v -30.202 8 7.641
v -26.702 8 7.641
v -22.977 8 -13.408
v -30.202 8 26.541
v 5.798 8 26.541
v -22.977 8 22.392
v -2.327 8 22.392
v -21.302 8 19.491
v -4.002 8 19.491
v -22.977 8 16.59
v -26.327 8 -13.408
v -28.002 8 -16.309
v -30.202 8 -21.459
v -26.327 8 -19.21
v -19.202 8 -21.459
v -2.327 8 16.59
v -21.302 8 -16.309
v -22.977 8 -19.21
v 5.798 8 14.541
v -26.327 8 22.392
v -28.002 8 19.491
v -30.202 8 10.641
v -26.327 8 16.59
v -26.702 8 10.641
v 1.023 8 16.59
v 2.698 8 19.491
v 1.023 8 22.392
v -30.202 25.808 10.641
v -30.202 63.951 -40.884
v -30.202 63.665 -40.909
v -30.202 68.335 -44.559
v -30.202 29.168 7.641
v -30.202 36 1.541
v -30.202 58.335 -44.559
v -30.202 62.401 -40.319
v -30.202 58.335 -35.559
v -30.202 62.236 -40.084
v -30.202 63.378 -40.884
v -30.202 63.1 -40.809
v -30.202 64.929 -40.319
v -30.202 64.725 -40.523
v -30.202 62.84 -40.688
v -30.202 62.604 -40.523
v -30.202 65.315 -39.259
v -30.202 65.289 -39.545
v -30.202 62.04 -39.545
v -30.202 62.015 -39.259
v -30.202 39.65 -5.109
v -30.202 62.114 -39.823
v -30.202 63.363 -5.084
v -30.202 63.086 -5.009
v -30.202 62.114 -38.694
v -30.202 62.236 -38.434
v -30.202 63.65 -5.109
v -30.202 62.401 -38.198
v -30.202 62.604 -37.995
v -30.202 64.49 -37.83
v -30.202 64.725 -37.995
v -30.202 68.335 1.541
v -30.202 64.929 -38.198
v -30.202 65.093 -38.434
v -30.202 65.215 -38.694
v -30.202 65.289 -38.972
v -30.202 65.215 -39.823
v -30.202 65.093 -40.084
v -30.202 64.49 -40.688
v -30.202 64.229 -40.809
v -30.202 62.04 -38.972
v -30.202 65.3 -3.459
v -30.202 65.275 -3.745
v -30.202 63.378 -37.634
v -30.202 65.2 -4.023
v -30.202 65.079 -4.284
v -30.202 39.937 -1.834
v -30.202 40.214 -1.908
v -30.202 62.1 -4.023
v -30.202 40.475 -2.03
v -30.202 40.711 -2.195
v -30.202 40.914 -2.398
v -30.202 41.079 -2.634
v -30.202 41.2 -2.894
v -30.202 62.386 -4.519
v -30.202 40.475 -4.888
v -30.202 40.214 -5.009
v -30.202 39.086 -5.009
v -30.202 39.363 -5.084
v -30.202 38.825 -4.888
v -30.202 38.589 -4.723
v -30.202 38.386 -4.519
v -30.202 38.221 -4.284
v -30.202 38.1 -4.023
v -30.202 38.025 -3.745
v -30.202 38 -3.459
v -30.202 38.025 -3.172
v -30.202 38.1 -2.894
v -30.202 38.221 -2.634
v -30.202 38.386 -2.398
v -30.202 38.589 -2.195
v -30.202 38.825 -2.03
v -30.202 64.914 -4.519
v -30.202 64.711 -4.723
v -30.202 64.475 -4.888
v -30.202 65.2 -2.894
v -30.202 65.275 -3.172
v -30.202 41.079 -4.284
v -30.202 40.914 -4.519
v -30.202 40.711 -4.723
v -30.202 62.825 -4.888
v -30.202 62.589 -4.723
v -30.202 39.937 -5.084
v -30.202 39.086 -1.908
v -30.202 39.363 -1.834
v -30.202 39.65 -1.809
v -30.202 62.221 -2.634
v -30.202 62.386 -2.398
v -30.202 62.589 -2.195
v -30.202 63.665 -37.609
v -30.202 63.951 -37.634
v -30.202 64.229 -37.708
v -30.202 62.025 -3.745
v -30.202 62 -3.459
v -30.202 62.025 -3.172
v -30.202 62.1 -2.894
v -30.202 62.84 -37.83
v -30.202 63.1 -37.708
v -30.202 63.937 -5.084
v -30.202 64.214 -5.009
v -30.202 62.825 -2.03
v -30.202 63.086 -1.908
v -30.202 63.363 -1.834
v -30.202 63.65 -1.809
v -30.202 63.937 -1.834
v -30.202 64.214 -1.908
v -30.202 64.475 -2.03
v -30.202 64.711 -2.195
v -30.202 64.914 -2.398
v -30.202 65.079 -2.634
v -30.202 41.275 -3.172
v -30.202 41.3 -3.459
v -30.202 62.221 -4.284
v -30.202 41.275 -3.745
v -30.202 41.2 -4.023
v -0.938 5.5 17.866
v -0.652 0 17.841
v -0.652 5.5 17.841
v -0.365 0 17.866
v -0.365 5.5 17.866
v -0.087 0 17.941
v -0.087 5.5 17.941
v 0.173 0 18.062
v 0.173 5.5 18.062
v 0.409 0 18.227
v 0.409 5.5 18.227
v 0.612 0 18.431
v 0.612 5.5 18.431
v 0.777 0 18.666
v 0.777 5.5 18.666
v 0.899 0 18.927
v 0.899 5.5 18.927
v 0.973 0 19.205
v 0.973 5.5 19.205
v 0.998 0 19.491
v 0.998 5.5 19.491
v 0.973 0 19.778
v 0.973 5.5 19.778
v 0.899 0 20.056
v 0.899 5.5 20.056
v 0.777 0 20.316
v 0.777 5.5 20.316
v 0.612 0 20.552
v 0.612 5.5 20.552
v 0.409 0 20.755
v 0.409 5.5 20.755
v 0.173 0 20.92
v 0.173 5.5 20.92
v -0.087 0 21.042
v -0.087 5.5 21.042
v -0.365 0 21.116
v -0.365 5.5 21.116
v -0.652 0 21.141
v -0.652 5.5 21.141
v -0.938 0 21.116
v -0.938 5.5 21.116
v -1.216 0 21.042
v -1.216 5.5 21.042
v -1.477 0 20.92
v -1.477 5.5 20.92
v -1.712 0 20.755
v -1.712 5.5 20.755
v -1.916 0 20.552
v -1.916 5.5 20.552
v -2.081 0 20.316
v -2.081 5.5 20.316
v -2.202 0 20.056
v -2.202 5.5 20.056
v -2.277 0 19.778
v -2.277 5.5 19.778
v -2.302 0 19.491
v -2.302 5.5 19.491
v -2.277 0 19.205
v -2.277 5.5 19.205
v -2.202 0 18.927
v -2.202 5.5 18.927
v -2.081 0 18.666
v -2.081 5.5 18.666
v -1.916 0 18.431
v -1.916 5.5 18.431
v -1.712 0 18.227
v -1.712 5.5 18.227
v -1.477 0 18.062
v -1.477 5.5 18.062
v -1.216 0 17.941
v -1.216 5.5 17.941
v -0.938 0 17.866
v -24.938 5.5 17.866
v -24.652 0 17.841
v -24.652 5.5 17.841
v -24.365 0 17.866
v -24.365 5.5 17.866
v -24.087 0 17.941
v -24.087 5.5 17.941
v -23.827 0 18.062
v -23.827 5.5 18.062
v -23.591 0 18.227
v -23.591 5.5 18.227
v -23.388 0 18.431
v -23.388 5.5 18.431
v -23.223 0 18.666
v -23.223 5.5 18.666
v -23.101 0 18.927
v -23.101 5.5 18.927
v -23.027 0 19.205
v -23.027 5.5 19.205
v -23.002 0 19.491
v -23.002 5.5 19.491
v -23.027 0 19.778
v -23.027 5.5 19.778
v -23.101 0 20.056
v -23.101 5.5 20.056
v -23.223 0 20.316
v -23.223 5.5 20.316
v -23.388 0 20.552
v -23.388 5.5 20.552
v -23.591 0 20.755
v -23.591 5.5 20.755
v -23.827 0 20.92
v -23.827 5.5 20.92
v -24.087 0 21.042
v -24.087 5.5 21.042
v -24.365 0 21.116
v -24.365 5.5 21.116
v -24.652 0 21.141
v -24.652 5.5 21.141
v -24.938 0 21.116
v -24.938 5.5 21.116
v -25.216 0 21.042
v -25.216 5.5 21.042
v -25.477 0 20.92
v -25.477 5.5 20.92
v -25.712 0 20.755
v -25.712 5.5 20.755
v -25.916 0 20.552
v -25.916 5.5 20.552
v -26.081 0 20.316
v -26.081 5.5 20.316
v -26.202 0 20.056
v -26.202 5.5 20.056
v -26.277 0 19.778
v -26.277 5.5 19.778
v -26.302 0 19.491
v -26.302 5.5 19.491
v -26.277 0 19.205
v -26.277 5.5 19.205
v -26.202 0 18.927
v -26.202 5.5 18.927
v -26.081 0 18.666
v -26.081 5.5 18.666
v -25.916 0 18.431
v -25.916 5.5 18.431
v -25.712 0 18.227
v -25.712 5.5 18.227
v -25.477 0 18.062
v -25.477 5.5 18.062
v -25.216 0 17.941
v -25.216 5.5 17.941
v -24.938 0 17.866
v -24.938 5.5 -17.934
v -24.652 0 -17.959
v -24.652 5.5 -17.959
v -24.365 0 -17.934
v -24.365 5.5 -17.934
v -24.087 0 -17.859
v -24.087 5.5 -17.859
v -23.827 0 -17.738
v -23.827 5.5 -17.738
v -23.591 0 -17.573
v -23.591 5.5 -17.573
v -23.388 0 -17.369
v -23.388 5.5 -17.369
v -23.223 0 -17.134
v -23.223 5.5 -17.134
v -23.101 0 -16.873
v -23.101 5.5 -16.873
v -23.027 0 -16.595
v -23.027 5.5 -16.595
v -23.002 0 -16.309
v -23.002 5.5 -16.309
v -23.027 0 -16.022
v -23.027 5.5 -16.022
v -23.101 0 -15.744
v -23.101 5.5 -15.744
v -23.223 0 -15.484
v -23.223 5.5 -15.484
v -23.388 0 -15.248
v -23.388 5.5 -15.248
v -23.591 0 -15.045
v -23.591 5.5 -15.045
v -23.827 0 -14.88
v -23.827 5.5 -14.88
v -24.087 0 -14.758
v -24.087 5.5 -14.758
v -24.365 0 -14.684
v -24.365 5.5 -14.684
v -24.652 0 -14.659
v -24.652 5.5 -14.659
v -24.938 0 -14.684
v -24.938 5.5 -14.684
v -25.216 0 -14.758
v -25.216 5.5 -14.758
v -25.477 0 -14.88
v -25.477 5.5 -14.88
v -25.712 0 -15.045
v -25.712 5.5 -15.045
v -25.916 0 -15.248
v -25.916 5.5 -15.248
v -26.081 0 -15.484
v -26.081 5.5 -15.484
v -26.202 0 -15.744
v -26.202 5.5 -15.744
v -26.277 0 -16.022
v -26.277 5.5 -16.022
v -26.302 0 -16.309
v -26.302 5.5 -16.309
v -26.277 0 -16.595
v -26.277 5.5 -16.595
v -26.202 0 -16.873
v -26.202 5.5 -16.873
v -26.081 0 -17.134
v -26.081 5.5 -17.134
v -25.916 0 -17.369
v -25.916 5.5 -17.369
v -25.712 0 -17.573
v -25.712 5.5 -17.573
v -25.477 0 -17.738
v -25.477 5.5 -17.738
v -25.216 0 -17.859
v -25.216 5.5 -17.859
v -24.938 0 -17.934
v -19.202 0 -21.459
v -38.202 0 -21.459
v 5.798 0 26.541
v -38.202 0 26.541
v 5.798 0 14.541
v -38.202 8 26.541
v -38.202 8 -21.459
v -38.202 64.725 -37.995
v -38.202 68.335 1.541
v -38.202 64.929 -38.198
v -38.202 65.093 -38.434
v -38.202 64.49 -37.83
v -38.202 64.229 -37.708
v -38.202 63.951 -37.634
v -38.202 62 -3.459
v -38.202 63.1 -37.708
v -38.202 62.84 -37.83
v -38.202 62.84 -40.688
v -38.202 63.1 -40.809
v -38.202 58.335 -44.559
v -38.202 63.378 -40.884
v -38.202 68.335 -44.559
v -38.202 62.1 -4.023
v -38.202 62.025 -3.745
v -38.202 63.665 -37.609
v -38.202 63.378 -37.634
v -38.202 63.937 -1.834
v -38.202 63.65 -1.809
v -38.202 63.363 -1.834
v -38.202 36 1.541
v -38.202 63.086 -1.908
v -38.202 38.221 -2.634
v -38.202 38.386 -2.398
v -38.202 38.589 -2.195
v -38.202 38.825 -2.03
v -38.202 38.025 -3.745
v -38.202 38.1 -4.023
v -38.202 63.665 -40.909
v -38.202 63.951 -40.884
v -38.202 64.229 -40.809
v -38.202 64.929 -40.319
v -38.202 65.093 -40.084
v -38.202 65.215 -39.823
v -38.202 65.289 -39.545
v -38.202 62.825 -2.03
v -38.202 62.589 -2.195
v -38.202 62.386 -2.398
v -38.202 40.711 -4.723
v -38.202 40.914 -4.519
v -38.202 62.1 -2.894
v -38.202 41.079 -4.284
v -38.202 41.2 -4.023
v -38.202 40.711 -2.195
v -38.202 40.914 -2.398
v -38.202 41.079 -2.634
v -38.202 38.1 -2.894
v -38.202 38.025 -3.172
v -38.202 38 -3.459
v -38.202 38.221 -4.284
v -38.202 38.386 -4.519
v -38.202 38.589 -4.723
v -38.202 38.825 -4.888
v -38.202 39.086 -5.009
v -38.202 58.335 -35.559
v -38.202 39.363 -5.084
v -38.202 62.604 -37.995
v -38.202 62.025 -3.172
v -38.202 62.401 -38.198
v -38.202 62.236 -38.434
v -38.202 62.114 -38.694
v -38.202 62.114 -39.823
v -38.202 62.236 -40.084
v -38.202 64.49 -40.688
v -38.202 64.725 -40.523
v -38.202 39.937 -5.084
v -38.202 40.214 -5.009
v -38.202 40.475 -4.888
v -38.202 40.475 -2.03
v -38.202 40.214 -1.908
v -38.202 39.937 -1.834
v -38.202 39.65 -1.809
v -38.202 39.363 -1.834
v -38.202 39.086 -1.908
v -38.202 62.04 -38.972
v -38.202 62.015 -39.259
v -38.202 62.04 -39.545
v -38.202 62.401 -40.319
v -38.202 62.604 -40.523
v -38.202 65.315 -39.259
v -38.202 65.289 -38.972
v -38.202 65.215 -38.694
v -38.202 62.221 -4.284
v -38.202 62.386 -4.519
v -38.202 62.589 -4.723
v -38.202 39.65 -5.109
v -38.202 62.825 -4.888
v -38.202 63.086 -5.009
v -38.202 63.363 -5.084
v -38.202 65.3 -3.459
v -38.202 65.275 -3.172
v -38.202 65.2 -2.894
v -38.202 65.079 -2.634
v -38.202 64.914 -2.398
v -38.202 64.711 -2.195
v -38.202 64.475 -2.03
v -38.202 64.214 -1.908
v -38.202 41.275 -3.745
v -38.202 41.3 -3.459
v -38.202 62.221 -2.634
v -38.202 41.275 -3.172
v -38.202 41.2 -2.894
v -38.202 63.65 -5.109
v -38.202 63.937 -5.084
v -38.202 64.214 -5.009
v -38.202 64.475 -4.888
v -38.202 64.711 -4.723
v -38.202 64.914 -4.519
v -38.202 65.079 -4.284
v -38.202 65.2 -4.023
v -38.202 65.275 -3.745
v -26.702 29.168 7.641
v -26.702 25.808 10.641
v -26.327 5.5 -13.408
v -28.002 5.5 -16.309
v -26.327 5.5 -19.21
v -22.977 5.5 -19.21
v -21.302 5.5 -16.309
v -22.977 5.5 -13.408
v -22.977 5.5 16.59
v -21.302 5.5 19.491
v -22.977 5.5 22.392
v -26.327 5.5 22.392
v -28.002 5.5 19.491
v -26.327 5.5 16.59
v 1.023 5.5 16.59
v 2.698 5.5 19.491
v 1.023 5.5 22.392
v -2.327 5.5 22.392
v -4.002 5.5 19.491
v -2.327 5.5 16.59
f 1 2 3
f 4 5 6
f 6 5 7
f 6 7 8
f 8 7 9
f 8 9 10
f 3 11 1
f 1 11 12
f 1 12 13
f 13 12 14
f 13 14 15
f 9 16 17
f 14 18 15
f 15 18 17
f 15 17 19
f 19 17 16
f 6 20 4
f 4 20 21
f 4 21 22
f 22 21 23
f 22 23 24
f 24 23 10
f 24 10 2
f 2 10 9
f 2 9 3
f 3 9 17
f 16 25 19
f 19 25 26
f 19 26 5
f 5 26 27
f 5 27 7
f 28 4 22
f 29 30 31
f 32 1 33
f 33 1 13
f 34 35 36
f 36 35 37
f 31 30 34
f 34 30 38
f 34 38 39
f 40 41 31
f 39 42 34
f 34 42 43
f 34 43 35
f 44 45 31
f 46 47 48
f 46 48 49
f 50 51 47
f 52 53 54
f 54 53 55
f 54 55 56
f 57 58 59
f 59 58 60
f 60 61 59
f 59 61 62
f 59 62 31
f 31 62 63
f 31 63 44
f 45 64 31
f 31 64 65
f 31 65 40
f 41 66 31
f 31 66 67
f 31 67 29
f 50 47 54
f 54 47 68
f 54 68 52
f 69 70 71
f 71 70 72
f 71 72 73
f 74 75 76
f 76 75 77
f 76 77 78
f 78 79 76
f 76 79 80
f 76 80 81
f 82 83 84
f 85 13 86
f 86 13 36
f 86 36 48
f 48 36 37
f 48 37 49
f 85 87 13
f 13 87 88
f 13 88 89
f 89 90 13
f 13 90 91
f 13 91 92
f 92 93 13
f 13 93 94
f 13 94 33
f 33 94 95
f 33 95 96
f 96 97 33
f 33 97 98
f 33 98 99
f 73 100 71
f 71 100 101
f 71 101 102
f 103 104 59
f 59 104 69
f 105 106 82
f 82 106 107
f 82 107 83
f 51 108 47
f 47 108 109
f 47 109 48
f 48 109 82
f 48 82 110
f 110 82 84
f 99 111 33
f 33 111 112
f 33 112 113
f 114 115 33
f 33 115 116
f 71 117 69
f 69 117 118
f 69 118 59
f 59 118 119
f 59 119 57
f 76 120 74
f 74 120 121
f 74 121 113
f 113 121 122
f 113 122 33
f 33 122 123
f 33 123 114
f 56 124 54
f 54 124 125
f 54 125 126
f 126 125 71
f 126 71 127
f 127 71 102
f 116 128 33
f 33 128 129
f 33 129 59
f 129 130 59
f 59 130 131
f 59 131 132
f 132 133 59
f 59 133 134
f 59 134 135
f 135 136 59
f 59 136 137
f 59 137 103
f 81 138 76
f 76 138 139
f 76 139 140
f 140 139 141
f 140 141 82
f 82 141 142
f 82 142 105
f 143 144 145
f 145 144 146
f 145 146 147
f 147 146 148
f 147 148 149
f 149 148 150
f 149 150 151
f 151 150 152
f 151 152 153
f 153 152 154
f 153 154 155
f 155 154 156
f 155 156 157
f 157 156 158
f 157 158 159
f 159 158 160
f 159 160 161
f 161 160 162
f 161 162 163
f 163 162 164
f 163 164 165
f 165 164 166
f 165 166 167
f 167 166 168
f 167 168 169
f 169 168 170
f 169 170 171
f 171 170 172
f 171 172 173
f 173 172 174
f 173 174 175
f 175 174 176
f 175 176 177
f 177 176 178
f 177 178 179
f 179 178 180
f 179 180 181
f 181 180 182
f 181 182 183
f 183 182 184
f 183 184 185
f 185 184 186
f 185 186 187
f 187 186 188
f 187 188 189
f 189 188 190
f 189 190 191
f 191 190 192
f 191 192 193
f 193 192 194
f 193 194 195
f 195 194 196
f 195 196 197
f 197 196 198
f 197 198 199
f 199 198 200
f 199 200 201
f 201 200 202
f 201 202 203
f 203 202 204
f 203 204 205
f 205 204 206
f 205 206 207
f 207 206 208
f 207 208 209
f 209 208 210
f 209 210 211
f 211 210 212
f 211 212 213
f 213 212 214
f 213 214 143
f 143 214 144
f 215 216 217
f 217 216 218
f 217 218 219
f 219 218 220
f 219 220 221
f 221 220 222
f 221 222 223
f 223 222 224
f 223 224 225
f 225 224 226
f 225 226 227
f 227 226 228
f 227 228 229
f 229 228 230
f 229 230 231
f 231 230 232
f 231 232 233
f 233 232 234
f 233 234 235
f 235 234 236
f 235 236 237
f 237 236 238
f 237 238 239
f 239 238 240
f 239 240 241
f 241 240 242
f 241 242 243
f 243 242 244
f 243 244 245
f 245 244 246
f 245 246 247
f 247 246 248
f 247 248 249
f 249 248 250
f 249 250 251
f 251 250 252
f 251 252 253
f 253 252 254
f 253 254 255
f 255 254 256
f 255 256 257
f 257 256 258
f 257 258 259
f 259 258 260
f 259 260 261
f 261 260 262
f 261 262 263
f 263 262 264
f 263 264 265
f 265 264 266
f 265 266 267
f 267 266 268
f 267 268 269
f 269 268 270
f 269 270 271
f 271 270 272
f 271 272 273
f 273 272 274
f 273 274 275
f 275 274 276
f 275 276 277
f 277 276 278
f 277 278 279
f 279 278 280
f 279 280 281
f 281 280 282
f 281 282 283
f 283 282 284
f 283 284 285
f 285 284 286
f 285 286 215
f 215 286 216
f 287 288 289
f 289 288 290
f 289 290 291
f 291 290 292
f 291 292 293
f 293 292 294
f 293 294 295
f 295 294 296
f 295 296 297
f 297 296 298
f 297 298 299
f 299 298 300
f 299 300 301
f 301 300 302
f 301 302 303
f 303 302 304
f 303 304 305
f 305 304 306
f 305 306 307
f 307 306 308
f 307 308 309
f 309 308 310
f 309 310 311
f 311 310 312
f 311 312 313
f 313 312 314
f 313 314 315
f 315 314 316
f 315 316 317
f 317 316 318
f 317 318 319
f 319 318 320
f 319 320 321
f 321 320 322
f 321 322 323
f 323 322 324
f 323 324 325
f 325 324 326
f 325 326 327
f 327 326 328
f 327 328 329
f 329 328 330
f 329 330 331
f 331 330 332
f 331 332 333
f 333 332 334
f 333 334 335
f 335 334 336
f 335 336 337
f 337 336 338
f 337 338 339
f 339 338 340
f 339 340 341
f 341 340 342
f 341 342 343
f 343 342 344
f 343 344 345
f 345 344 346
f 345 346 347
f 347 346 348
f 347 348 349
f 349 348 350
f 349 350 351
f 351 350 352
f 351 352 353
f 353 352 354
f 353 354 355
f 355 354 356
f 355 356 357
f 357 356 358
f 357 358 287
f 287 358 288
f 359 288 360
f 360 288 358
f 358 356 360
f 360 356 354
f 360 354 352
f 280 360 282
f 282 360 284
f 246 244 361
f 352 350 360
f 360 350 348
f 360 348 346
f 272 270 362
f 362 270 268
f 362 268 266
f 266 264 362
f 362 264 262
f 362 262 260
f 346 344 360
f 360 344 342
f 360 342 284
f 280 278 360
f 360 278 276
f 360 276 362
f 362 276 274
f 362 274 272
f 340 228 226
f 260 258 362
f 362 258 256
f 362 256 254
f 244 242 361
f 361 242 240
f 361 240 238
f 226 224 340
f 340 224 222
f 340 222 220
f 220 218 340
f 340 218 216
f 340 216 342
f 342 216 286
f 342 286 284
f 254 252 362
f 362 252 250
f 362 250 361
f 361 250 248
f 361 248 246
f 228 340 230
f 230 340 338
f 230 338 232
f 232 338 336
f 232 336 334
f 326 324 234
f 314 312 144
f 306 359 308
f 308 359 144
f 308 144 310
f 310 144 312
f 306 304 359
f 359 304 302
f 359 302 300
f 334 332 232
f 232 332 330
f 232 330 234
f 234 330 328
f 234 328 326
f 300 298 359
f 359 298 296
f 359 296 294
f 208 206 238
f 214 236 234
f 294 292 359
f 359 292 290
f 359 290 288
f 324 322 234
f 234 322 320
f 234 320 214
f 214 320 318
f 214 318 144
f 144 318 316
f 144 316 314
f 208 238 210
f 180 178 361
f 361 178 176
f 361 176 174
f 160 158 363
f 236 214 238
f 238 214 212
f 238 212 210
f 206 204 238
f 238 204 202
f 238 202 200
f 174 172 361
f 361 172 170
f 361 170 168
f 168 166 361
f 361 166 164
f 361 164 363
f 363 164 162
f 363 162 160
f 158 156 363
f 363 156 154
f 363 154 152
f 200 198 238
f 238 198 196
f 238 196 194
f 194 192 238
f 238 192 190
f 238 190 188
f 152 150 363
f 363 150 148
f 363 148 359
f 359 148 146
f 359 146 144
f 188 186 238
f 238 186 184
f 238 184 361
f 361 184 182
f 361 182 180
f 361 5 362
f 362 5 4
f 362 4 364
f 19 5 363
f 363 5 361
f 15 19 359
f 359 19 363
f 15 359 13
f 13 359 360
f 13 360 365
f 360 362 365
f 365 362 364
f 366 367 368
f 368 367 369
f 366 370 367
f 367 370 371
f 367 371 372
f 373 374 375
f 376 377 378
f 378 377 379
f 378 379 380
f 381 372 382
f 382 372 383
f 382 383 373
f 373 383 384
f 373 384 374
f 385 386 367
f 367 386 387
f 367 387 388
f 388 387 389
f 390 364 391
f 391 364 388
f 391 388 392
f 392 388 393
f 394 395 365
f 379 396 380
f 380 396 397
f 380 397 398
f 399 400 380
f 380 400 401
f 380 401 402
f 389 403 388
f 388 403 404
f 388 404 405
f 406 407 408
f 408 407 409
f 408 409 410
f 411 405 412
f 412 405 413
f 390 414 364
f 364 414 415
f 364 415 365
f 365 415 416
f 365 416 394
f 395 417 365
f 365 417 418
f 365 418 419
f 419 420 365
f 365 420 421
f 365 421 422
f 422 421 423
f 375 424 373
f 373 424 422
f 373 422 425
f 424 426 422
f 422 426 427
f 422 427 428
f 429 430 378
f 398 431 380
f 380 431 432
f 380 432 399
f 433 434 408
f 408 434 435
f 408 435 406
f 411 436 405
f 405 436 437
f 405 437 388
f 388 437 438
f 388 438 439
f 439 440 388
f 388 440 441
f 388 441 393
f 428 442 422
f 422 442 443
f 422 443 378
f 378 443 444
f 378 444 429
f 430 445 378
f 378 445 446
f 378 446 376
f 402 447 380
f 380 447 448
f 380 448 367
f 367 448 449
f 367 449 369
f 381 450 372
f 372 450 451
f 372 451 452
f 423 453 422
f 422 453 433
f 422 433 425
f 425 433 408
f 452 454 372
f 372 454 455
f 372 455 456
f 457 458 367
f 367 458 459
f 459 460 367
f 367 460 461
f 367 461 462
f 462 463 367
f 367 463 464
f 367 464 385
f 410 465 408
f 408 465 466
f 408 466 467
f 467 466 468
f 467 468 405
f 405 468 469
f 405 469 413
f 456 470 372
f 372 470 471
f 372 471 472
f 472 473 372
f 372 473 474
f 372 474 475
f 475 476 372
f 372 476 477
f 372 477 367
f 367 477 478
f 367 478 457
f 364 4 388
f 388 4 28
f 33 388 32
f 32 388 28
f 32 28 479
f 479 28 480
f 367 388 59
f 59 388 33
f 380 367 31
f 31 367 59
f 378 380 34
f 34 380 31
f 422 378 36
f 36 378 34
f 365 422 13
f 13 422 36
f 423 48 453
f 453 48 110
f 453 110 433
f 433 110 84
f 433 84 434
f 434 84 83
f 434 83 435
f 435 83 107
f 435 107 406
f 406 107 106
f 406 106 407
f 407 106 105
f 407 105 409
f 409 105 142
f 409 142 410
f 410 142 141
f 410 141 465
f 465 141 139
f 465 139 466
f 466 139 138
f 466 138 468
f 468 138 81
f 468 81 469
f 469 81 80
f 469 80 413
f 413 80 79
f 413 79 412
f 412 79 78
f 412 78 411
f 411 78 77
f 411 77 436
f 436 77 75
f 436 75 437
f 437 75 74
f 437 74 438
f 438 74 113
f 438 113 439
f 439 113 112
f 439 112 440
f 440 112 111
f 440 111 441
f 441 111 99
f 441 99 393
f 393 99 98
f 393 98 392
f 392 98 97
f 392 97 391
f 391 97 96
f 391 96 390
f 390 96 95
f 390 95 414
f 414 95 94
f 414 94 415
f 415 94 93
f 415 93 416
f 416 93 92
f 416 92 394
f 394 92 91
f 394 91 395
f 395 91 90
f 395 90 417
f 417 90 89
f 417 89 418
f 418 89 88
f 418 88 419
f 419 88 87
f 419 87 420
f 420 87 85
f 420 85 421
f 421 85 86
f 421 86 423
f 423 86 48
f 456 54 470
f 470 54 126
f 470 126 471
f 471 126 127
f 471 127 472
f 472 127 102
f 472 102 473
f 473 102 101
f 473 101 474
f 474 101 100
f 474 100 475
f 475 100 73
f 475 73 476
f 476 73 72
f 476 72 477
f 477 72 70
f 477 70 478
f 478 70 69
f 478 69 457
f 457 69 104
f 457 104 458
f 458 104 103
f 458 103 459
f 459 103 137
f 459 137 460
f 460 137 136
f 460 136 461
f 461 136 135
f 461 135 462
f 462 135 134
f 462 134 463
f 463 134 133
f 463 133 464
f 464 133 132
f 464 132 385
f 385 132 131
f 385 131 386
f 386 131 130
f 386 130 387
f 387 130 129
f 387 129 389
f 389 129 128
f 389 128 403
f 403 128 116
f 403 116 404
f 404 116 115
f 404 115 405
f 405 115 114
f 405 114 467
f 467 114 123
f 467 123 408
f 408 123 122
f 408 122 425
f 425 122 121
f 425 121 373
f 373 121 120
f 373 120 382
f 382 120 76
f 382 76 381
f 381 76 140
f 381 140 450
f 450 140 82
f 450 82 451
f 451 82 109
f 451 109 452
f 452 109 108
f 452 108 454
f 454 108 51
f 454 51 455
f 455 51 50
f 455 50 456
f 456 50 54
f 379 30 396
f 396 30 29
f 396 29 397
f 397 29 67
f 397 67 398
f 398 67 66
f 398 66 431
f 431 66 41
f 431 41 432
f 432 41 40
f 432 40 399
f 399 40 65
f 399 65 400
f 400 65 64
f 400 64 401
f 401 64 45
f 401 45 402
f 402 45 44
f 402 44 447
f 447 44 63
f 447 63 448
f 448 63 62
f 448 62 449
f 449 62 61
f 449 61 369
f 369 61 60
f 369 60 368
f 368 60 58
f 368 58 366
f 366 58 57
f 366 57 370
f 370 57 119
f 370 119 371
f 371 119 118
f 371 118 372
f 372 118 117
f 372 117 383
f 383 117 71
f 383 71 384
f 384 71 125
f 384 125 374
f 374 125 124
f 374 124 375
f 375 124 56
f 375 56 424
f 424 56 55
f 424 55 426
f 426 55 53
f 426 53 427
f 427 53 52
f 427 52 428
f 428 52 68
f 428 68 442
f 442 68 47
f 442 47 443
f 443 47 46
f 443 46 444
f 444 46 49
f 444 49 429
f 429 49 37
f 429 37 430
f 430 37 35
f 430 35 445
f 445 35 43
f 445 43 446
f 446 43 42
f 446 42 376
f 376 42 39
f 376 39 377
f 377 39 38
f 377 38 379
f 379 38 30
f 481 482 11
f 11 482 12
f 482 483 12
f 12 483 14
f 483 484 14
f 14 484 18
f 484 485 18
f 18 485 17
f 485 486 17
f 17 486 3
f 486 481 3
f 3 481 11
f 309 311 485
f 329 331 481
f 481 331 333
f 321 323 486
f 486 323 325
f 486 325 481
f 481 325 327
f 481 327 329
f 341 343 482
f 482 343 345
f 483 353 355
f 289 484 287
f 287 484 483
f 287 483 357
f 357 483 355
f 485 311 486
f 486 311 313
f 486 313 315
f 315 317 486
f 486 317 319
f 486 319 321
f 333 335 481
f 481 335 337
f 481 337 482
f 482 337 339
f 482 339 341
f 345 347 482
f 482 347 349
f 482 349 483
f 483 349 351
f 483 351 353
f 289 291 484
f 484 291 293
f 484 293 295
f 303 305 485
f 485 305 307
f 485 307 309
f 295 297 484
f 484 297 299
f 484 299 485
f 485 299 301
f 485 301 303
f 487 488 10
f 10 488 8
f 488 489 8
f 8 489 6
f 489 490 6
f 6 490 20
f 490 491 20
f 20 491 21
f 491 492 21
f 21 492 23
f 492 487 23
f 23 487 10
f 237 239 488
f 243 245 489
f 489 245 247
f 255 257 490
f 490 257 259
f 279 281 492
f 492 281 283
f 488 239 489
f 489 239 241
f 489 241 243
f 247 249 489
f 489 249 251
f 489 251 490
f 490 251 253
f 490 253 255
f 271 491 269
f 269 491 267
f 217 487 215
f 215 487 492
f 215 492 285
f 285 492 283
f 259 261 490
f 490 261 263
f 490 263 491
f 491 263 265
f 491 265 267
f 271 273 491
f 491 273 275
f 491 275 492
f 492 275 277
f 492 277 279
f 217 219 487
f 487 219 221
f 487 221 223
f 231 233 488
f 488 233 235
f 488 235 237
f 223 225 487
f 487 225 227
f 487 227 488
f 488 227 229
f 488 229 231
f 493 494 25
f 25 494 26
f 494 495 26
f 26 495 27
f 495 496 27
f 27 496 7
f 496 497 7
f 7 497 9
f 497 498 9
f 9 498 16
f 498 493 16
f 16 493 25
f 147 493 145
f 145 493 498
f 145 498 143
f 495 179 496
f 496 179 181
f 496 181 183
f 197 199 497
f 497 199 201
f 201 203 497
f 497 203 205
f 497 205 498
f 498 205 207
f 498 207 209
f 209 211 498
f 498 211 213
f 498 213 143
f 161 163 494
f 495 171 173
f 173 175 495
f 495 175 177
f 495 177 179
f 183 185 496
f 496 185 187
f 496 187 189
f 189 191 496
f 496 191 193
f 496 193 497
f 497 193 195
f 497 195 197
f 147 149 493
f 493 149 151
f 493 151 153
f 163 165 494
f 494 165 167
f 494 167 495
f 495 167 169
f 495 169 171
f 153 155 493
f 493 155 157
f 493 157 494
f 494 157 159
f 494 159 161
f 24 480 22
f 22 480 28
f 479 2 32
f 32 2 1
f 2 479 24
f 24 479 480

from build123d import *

# Parameters (mm, degrees)
SKETCH1_R           = 1.65
BOSS_EXTRUDE1_DEPTH = 8
SKETCH3_R           = 1.65
BOSS_EXTRUDE2_DEPTH = 8
CUT_EXTRUDE1_DEPTH  = 2.5
BOSS_EXTRUDE3_DEPTH = 3.5


with BuildPart() as part:
    # Sketch1 → Boss-Extrude1 (new body)
    with BuildSketch(Plane(origin=(0, 0, 0), x_dir=(1, 0, 0), z_dir=(0, 1, 0))):
        Polygon((-30.201635745, 21.458760302), (-19.201635745, 21.458760302), (5.798364255, -14.541239698), (5.798364255, -26.541239698), (-30.201635745, -26.541239698), align=None)
        with Locations((-24.651635745, 16.308760302)):
            Circle(SKETCH1_R, mode=Mode.SUBTRACT)
        with Locations((-24.651635745, -19.491239698)):
            Circle(SKETCH1_R, mode=Mode.SUBTRACT)
        with Locations((-0.651635745, -19.491239698)):
            Circle(SKETCH1_R, mode=Mode.SUBTRACT)
    extrude(amount=BOSS_EXTRUDE1_DEPTH)

    # Sketch3 → Boss-Extrude2 (add)
    with BuildSketch(Plane.ZY.offset(30.201635745)):
        Polygon((-44.558757353, 58.334529743), (-35.558757353, 58.334529743), (-21.458760302, 8), (-21.458760302, 0), (26.541239698, 0), (26.541239698, 8), (1.541239698, 36), (1.541239698, 68.334529743), (-44.558757353, 68.334529743), align=None)
        with Locations((-3.458760302, 39.65)):
            Circle(SKETCH3_R, mode=Mode.SUBTRACT)
        with Locations((-3.458760302, 63.65)):
            Circle(SKETCH3_R, mode=Mode.SUBTRACT)
        with Locations((-39.258757353, 63.664529743)):
            Circle(SKETCH3_R, mode=Mode.SUBTRACT)
    extrude(amount=BOSS_EXTRUDE2_DEPTH)

    # Sketch4 → Cut-Extrude1 (cut)
    with BuildSketch(Plane(origin=(0, 8, 0), x_dir=(1, 0, 0), z_dir=(0, 1, 0))):
        Polygon((-26.326635745, 13.407575199), (-22.976635745, 13.407575199), (-21.301635745, 16.308760302), (-22.976635745, 19.209945405), (-26.326635745, 19.209945405), (-28.001635745, 16.308760302), align=None)
        Polygon((-22.976635745, -16.590054595), (-26.326635745, -16.590054595), (-28.001635745, -19.491239698), (-26.326635745, -22.392424801), (-22.976635745, -22.392424801), (-21.301635745, -19.491239698), align=None)
        Polygon((1.023364255, -16.590054595), (-2.326635745, -16.590054595), (-4.001635745, -19.491239698), (-2.326635745, -22.392424801), (1.023364255, -22.392424801), (2.698364255, -19.491239698), align=None)
    extrude(amount=-CUT_EXTRUDE1_DEPTH, mode=Mode.SUBTRACT)

    # Sketch5 → Boss-Extrude3 (add)
    with BuildSketch(Plane(origin=(-30.201635745, 0, 0), x_dir=(0, 0, -1), z_dir=(1, 0, 0))):
        Polygon((-10.641239698, 8), (-7.641239698, 8), (-7.641239698, 29.168), (-10.641239698, 25.808), align=None)
    extrude(amount=BOSS_EXTRUDE3_DEPTH)


solid = part.part
